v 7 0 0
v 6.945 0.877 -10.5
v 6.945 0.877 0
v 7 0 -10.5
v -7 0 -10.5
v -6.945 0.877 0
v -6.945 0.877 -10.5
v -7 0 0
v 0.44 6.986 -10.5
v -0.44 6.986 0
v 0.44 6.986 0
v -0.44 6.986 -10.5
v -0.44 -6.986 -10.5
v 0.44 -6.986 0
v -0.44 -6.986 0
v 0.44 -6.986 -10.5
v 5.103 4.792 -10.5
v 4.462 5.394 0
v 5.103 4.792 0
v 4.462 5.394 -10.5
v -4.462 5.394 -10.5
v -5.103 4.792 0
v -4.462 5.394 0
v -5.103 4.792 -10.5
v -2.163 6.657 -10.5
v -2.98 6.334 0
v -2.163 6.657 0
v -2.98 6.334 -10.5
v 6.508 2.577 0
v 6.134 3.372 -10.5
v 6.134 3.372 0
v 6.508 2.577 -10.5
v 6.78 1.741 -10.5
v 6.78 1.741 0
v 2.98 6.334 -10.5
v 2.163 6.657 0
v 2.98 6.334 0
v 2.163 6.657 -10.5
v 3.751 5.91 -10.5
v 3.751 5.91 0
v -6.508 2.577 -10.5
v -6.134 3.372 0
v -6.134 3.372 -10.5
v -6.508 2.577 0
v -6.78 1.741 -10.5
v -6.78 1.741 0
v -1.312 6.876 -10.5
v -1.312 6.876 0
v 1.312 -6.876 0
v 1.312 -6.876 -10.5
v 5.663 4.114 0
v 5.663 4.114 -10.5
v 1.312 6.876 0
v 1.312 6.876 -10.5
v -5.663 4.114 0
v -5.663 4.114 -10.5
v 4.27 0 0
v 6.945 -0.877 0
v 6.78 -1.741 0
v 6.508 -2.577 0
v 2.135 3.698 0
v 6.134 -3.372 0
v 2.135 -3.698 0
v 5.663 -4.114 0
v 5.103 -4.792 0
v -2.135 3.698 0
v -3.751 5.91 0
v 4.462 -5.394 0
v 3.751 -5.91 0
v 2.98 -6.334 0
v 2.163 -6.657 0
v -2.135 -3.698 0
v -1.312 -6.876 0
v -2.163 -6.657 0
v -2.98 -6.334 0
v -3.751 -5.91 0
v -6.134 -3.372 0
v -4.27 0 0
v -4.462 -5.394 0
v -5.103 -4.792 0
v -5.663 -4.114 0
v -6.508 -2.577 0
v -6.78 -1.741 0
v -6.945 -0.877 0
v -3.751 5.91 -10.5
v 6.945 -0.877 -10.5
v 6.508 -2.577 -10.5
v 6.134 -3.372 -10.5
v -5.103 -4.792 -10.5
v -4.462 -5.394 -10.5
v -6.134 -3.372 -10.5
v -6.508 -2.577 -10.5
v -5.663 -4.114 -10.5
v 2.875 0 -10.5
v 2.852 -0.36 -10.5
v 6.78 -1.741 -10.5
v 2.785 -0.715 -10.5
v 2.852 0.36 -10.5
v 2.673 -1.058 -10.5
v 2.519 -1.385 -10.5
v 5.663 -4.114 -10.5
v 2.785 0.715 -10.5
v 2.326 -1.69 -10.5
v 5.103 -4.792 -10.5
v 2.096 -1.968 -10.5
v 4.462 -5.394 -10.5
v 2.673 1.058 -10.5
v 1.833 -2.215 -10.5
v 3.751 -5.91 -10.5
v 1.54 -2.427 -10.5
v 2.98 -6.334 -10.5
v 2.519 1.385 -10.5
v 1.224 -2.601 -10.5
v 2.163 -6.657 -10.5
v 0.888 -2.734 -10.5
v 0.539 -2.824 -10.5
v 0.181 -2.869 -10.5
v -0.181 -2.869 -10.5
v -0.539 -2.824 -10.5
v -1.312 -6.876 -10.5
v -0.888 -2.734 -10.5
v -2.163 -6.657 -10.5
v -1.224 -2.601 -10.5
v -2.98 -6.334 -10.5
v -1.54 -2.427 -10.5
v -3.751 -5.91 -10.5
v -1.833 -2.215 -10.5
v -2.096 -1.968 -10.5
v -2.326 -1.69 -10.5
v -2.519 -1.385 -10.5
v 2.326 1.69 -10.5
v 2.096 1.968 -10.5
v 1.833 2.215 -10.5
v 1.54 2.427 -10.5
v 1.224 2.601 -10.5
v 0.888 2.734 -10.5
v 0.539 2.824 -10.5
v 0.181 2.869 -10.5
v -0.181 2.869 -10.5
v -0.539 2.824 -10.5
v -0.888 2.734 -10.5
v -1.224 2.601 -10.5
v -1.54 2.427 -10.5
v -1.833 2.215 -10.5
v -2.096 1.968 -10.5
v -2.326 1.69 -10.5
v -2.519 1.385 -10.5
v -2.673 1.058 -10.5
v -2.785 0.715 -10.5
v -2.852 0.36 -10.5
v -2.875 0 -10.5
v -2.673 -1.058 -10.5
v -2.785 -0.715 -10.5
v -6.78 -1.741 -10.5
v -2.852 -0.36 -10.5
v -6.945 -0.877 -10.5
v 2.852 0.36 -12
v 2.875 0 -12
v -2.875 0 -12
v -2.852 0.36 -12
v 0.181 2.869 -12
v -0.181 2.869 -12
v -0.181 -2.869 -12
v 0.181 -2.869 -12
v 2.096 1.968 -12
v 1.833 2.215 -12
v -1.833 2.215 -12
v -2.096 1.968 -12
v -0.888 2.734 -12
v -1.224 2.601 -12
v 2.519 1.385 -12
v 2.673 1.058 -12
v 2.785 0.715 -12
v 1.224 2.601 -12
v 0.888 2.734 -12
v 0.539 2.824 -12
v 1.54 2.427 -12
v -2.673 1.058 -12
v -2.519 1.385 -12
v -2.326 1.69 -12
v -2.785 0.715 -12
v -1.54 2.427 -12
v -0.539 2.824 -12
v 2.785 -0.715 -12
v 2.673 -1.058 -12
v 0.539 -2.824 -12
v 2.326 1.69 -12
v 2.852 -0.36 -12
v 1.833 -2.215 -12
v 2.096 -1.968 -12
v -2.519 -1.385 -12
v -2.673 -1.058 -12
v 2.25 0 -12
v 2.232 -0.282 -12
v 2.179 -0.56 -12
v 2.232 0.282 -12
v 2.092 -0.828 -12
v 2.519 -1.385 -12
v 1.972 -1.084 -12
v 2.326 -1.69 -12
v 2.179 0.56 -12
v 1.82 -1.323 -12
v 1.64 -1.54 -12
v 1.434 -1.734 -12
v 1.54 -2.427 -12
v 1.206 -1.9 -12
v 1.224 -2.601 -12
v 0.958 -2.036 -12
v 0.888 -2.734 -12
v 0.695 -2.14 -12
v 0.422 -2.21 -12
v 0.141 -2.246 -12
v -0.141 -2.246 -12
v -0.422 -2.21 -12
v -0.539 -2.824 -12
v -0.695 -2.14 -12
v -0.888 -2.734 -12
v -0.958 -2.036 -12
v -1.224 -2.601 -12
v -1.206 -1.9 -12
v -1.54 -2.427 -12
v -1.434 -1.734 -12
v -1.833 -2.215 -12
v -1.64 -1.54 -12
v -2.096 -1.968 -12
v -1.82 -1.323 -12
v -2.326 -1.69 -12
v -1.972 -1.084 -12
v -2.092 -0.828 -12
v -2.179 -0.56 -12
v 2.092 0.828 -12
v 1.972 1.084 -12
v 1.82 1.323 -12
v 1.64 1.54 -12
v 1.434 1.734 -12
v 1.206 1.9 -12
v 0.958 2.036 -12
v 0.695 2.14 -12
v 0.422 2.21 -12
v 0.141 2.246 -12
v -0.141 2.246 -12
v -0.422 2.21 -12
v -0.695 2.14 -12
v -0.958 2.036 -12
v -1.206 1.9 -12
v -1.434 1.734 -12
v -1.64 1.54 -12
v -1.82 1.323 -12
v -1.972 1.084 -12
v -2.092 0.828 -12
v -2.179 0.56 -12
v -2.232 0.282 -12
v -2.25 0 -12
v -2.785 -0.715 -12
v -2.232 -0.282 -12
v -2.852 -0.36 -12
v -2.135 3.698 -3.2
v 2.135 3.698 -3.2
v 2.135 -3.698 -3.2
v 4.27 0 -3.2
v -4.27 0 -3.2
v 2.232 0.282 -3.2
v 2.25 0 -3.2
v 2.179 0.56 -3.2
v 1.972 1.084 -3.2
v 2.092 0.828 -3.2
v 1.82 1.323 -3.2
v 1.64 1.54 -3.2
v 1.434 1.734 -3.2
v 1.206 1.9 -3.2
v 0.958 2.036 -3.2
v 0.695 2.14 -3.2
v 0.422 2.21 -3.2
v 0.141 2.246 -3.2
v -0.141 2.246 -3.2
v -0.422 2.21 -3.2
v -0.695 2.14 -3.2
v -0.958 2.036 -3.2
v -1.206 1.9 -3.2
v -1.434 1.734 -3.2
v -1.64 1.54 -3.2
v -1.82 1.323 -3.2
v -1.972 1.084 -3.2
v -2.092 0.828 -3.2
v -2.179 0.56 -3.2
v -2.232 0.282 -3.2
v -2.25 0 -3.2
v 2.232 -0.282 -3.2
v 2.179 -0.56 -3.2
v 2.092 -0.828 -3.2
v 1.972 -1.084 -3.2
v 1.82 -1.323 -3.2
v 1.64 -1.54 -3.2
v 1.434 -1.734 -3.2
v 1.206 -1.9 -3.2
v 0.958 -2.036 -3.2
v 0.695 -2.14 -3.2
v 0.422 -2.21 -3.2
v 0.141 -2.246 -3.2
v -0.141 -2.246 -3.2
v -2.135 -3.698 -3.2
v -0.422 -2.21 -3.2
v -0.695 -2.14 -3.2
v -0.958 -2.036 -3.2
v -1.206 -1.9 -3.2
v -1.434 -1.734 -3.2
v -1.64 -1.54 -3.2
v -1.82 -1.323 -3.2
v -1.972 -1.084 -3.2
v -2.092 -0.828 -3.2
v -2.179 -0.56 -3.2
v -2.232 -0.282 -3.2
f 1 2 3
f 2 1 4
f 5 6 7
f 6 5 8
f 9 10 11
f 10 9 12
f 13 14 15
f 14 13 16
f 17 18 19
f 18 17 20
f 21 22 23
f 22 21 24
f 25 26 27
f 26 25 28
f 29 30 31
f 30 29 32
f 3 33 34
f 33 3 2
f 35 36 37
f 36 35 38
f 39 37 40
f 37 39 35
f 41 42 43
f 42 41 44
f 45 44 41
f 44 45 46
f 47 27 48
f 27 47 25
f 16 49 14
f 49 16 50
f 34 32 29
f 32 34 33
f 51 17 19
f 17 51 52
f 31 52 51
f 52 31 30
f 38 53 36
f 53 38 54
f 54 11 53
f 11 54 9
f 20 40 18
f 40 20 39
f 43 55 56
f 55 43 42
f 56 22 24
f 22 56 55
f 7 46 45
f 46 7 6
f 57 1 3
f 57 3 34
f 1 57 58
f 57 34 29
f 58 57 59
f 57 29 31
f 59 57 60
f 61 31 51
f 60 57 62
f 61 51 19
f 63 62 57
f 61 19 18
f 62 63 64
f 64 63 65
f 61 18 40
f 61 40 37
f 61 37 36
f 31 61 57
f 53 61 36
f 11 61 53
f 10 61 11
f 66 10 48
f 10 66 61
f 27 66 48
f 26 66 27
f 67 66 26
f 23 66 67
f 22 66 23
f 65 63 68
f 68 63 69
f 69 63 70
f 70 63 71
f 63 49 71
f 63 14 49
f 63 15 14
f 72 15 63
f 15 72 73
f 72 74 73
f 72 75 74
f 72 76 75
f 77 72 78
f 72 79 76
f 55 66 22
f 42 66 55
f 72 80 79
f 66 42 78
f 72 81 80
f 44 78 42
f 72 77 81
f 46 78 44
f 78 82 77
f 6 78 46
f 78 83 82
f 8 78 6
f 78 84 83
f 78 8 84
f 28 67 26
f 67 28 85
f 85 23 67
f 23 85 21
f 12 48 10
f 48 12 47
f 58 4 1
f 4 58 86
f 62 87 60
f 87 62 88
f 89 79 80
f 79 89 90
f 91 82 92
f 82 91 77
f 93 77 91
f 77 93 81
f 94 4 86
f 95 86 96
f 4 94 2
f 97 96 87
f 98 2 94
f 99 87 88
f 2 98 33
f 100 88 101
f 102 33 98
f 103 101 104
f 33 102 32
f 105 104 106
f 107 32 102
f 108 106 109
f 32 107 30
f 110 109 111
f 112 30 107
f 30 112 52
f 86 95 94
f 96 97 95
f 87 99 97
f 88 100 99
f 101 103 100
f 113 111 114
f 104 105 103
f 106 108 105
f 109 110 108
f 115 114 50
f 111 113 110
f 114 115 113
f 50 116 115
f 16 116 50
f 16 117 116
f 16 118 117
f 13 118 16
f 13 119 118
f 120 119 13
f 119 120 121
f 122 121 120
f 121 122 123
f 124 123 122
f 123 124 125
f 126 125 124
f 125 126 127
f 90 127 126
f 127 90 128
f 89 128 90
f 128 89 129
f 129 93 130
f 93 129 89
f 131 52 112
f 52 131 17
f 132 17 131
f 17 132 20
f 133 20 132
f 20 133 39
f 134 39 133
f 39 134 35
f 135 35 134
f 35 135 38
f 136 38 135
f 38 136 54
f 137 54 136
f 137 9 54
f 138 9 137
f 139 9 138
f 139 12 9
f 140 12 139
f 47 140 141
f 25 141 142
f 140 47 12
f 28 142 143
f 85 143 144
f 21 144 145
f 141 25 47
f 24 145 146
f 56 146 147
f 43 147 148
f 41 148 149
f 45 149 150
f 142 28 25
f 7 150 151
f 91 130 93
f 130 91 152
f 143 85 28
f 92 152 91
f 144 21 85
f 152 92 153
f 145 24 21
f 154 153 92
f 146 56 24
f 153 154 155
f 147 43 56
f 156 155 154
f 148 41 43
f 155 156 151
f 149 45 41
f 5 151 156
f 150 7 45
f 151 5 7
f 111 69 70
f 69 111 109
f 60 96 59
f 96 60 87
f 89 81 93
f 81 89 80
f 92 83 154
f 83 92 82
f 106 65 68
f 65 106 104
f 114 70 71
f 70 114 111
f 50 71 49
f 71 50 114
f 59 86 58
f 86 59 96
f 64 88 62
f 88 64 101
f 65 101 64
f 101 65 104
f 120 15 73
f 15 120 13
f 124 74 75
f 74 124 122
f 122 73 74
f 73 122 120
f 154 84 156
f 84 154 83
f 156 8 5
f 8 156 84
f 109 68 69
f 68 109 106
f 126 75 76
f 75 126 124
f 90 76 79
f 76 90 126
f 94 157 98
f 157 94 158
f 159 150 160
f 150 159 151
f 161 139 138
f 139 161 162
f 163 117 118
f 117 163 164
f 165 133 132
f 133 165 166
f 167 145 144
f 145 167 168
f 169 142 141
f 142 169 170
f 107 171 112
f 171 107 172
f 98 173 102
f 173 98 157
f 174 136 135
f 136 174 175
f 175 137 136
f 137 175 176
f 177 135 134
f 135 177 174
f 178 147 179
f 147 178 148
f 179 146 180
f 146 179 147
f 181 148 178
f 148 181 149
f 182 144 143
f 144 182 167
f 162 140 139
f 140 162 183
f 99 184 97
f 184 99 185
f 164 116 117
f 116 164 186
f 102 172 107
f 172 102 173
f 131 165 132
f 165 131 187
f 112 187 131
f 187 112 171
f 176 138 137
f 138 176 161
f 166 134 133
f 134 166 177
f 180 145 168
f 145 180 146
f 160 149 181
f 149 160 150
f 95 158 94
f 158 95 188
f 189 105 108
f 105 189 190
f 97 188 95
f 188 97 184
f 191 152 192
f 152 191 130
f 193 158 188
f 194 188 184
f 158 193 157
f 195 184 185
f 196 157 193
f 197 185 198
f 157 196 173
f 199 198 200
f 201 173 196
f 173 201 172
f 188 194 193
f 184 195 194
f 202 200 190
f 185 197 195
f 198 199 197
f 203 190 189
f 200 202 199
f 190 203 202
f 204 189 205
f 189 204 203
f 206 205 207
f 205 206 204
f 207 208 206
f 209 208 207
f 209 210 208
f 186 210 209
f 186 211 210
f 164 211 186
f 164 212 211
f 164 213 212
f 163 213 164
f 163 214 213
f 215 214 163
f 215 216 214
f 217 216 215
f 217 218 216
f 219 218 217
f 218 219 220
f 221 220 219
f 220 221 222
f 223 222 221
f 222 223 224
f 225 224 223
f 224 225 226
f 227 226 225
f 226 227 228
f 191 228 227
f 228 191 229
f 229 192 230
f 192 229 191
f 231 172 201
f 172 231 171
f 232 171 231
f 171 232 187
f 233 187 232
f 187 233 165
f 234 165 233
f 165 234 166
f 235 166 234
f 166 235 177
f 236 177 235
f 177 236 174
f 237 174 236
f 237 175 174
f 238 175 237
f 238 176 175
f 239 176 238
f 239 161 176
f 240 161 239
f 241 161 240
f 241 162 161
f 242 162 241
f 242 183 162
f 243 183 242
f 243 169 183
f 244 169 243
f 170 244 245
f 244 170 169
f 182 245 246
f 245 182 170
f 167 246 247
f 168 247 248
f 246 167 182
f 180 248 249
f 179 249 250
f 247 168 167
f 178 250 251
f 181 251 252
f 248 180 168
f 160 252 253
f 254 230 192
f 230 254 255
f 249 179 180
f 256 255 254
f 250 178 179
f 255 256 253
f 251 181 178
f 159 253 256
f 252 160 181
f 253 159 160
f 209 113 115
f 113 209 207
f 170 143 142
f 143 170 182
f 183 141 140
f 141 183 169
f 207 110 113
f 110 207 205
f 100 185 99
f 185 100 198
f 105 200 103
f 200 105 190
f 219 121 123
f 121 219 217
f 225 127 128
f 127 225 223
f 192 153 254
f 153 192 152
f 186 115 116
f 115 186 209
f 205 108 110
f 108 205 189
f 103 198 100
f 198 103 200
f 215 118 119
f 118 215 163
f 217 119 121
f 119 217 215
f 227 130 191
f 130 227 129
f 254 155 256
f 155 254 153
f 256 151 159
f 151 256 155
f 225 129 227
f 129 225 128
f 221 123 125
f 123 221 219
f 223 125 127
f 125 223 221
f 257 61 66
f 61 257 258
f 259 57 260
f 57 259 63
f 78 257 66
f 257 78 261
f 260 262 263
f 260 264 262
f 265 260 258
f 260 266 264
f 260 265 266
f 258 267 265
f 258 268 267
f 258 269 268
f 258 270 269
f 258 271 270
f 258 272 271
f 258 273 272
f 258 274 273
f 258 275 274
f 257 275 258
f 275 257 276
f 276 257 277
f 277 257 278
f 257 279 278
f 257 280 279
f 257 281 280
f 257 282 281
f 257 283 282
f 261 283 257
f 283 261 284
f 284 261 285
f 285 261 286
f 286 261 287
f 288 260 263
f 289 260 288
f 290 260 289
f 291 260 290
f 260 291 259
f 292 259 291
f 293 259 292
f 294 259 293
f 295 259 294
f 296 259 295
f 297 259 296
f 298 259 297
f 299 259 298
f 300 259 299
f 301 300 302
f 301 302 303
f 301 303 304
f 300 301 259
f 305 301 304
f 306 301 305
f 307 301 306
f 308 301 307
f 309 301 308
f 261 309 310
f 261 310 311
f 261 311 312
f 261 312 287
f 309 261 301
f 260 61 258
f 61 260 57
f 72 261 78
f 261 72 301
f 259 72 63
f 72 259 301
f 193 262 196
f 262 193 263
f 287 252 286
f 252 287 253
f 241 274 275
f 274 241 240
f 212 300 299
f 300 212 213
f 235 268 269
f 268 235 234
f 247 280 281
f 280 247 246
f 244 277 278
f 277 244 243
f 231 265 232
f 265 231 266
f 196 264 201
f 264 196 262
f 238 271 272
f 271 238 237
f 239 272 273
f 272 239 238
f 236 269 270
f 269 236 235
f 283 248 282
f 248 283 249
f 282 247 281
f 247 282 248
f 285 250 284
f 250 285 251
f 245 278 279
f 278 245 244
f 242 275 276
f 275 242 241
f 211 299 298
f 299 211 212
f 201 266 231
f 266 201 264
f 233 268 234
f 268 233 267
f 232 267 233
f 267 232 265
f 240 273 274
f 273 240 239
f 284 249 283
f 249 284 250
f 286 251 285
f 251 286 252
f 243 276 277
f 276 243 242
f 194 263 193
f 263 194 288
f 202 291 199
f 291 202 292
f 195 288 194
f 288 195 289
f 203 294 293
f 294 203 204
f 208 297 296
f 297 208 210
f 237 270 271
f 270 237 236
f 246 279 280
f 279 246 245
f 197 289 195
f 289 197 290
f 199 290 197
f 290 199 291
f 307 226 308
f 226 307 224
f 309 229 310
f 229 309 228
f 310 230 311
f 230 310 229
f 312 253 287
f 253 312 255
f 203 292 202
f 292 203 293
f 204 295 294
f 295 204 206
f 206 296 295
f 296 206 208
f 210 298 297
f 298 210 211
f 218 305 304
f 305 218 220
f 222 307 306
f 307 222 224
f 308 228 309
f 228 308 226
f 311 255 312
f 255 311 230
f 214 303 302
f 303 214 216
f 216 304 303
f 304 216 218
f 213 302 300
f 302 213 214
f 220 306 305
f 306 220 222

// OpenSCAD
$fn = 50;


difference() {
	union() {
		translate(v = [0, 0, -10.5000000000]) {
			cylinder(h = 10.5000000000, r = 7.0000000000);
		}
		translate(v = [0, 0, -12.0000000000]) {
			cylinder(h = 12, r = 2.8750000000);
		}
	}
	union() {
		translate(v = [0, 0, 0]) {
			rotate(a = [0, 0, 0]) {
				difference() {
					union() {
						translate(v = [0, 0, -3.2000000000]) {
							linear_extrude(height = 3.2000000000) {
								polygon(points = [[4.2698000000, 0.0000000000], [2.1349000000, 3.6977552691], [-2.1349000000, 3.6977552691], [-4.2698000000, 0.0000000000], [-2.1349000000, -3.6977552691], [2.1349000000, -3.6977552691]]);
							}
						}
					}
					union();
				}
			}
		}
		#translate(v = [0, 0, -100.0000000000]) {
			cylinder(h = 200, r = 2.2500000000);
		}
	}
}
